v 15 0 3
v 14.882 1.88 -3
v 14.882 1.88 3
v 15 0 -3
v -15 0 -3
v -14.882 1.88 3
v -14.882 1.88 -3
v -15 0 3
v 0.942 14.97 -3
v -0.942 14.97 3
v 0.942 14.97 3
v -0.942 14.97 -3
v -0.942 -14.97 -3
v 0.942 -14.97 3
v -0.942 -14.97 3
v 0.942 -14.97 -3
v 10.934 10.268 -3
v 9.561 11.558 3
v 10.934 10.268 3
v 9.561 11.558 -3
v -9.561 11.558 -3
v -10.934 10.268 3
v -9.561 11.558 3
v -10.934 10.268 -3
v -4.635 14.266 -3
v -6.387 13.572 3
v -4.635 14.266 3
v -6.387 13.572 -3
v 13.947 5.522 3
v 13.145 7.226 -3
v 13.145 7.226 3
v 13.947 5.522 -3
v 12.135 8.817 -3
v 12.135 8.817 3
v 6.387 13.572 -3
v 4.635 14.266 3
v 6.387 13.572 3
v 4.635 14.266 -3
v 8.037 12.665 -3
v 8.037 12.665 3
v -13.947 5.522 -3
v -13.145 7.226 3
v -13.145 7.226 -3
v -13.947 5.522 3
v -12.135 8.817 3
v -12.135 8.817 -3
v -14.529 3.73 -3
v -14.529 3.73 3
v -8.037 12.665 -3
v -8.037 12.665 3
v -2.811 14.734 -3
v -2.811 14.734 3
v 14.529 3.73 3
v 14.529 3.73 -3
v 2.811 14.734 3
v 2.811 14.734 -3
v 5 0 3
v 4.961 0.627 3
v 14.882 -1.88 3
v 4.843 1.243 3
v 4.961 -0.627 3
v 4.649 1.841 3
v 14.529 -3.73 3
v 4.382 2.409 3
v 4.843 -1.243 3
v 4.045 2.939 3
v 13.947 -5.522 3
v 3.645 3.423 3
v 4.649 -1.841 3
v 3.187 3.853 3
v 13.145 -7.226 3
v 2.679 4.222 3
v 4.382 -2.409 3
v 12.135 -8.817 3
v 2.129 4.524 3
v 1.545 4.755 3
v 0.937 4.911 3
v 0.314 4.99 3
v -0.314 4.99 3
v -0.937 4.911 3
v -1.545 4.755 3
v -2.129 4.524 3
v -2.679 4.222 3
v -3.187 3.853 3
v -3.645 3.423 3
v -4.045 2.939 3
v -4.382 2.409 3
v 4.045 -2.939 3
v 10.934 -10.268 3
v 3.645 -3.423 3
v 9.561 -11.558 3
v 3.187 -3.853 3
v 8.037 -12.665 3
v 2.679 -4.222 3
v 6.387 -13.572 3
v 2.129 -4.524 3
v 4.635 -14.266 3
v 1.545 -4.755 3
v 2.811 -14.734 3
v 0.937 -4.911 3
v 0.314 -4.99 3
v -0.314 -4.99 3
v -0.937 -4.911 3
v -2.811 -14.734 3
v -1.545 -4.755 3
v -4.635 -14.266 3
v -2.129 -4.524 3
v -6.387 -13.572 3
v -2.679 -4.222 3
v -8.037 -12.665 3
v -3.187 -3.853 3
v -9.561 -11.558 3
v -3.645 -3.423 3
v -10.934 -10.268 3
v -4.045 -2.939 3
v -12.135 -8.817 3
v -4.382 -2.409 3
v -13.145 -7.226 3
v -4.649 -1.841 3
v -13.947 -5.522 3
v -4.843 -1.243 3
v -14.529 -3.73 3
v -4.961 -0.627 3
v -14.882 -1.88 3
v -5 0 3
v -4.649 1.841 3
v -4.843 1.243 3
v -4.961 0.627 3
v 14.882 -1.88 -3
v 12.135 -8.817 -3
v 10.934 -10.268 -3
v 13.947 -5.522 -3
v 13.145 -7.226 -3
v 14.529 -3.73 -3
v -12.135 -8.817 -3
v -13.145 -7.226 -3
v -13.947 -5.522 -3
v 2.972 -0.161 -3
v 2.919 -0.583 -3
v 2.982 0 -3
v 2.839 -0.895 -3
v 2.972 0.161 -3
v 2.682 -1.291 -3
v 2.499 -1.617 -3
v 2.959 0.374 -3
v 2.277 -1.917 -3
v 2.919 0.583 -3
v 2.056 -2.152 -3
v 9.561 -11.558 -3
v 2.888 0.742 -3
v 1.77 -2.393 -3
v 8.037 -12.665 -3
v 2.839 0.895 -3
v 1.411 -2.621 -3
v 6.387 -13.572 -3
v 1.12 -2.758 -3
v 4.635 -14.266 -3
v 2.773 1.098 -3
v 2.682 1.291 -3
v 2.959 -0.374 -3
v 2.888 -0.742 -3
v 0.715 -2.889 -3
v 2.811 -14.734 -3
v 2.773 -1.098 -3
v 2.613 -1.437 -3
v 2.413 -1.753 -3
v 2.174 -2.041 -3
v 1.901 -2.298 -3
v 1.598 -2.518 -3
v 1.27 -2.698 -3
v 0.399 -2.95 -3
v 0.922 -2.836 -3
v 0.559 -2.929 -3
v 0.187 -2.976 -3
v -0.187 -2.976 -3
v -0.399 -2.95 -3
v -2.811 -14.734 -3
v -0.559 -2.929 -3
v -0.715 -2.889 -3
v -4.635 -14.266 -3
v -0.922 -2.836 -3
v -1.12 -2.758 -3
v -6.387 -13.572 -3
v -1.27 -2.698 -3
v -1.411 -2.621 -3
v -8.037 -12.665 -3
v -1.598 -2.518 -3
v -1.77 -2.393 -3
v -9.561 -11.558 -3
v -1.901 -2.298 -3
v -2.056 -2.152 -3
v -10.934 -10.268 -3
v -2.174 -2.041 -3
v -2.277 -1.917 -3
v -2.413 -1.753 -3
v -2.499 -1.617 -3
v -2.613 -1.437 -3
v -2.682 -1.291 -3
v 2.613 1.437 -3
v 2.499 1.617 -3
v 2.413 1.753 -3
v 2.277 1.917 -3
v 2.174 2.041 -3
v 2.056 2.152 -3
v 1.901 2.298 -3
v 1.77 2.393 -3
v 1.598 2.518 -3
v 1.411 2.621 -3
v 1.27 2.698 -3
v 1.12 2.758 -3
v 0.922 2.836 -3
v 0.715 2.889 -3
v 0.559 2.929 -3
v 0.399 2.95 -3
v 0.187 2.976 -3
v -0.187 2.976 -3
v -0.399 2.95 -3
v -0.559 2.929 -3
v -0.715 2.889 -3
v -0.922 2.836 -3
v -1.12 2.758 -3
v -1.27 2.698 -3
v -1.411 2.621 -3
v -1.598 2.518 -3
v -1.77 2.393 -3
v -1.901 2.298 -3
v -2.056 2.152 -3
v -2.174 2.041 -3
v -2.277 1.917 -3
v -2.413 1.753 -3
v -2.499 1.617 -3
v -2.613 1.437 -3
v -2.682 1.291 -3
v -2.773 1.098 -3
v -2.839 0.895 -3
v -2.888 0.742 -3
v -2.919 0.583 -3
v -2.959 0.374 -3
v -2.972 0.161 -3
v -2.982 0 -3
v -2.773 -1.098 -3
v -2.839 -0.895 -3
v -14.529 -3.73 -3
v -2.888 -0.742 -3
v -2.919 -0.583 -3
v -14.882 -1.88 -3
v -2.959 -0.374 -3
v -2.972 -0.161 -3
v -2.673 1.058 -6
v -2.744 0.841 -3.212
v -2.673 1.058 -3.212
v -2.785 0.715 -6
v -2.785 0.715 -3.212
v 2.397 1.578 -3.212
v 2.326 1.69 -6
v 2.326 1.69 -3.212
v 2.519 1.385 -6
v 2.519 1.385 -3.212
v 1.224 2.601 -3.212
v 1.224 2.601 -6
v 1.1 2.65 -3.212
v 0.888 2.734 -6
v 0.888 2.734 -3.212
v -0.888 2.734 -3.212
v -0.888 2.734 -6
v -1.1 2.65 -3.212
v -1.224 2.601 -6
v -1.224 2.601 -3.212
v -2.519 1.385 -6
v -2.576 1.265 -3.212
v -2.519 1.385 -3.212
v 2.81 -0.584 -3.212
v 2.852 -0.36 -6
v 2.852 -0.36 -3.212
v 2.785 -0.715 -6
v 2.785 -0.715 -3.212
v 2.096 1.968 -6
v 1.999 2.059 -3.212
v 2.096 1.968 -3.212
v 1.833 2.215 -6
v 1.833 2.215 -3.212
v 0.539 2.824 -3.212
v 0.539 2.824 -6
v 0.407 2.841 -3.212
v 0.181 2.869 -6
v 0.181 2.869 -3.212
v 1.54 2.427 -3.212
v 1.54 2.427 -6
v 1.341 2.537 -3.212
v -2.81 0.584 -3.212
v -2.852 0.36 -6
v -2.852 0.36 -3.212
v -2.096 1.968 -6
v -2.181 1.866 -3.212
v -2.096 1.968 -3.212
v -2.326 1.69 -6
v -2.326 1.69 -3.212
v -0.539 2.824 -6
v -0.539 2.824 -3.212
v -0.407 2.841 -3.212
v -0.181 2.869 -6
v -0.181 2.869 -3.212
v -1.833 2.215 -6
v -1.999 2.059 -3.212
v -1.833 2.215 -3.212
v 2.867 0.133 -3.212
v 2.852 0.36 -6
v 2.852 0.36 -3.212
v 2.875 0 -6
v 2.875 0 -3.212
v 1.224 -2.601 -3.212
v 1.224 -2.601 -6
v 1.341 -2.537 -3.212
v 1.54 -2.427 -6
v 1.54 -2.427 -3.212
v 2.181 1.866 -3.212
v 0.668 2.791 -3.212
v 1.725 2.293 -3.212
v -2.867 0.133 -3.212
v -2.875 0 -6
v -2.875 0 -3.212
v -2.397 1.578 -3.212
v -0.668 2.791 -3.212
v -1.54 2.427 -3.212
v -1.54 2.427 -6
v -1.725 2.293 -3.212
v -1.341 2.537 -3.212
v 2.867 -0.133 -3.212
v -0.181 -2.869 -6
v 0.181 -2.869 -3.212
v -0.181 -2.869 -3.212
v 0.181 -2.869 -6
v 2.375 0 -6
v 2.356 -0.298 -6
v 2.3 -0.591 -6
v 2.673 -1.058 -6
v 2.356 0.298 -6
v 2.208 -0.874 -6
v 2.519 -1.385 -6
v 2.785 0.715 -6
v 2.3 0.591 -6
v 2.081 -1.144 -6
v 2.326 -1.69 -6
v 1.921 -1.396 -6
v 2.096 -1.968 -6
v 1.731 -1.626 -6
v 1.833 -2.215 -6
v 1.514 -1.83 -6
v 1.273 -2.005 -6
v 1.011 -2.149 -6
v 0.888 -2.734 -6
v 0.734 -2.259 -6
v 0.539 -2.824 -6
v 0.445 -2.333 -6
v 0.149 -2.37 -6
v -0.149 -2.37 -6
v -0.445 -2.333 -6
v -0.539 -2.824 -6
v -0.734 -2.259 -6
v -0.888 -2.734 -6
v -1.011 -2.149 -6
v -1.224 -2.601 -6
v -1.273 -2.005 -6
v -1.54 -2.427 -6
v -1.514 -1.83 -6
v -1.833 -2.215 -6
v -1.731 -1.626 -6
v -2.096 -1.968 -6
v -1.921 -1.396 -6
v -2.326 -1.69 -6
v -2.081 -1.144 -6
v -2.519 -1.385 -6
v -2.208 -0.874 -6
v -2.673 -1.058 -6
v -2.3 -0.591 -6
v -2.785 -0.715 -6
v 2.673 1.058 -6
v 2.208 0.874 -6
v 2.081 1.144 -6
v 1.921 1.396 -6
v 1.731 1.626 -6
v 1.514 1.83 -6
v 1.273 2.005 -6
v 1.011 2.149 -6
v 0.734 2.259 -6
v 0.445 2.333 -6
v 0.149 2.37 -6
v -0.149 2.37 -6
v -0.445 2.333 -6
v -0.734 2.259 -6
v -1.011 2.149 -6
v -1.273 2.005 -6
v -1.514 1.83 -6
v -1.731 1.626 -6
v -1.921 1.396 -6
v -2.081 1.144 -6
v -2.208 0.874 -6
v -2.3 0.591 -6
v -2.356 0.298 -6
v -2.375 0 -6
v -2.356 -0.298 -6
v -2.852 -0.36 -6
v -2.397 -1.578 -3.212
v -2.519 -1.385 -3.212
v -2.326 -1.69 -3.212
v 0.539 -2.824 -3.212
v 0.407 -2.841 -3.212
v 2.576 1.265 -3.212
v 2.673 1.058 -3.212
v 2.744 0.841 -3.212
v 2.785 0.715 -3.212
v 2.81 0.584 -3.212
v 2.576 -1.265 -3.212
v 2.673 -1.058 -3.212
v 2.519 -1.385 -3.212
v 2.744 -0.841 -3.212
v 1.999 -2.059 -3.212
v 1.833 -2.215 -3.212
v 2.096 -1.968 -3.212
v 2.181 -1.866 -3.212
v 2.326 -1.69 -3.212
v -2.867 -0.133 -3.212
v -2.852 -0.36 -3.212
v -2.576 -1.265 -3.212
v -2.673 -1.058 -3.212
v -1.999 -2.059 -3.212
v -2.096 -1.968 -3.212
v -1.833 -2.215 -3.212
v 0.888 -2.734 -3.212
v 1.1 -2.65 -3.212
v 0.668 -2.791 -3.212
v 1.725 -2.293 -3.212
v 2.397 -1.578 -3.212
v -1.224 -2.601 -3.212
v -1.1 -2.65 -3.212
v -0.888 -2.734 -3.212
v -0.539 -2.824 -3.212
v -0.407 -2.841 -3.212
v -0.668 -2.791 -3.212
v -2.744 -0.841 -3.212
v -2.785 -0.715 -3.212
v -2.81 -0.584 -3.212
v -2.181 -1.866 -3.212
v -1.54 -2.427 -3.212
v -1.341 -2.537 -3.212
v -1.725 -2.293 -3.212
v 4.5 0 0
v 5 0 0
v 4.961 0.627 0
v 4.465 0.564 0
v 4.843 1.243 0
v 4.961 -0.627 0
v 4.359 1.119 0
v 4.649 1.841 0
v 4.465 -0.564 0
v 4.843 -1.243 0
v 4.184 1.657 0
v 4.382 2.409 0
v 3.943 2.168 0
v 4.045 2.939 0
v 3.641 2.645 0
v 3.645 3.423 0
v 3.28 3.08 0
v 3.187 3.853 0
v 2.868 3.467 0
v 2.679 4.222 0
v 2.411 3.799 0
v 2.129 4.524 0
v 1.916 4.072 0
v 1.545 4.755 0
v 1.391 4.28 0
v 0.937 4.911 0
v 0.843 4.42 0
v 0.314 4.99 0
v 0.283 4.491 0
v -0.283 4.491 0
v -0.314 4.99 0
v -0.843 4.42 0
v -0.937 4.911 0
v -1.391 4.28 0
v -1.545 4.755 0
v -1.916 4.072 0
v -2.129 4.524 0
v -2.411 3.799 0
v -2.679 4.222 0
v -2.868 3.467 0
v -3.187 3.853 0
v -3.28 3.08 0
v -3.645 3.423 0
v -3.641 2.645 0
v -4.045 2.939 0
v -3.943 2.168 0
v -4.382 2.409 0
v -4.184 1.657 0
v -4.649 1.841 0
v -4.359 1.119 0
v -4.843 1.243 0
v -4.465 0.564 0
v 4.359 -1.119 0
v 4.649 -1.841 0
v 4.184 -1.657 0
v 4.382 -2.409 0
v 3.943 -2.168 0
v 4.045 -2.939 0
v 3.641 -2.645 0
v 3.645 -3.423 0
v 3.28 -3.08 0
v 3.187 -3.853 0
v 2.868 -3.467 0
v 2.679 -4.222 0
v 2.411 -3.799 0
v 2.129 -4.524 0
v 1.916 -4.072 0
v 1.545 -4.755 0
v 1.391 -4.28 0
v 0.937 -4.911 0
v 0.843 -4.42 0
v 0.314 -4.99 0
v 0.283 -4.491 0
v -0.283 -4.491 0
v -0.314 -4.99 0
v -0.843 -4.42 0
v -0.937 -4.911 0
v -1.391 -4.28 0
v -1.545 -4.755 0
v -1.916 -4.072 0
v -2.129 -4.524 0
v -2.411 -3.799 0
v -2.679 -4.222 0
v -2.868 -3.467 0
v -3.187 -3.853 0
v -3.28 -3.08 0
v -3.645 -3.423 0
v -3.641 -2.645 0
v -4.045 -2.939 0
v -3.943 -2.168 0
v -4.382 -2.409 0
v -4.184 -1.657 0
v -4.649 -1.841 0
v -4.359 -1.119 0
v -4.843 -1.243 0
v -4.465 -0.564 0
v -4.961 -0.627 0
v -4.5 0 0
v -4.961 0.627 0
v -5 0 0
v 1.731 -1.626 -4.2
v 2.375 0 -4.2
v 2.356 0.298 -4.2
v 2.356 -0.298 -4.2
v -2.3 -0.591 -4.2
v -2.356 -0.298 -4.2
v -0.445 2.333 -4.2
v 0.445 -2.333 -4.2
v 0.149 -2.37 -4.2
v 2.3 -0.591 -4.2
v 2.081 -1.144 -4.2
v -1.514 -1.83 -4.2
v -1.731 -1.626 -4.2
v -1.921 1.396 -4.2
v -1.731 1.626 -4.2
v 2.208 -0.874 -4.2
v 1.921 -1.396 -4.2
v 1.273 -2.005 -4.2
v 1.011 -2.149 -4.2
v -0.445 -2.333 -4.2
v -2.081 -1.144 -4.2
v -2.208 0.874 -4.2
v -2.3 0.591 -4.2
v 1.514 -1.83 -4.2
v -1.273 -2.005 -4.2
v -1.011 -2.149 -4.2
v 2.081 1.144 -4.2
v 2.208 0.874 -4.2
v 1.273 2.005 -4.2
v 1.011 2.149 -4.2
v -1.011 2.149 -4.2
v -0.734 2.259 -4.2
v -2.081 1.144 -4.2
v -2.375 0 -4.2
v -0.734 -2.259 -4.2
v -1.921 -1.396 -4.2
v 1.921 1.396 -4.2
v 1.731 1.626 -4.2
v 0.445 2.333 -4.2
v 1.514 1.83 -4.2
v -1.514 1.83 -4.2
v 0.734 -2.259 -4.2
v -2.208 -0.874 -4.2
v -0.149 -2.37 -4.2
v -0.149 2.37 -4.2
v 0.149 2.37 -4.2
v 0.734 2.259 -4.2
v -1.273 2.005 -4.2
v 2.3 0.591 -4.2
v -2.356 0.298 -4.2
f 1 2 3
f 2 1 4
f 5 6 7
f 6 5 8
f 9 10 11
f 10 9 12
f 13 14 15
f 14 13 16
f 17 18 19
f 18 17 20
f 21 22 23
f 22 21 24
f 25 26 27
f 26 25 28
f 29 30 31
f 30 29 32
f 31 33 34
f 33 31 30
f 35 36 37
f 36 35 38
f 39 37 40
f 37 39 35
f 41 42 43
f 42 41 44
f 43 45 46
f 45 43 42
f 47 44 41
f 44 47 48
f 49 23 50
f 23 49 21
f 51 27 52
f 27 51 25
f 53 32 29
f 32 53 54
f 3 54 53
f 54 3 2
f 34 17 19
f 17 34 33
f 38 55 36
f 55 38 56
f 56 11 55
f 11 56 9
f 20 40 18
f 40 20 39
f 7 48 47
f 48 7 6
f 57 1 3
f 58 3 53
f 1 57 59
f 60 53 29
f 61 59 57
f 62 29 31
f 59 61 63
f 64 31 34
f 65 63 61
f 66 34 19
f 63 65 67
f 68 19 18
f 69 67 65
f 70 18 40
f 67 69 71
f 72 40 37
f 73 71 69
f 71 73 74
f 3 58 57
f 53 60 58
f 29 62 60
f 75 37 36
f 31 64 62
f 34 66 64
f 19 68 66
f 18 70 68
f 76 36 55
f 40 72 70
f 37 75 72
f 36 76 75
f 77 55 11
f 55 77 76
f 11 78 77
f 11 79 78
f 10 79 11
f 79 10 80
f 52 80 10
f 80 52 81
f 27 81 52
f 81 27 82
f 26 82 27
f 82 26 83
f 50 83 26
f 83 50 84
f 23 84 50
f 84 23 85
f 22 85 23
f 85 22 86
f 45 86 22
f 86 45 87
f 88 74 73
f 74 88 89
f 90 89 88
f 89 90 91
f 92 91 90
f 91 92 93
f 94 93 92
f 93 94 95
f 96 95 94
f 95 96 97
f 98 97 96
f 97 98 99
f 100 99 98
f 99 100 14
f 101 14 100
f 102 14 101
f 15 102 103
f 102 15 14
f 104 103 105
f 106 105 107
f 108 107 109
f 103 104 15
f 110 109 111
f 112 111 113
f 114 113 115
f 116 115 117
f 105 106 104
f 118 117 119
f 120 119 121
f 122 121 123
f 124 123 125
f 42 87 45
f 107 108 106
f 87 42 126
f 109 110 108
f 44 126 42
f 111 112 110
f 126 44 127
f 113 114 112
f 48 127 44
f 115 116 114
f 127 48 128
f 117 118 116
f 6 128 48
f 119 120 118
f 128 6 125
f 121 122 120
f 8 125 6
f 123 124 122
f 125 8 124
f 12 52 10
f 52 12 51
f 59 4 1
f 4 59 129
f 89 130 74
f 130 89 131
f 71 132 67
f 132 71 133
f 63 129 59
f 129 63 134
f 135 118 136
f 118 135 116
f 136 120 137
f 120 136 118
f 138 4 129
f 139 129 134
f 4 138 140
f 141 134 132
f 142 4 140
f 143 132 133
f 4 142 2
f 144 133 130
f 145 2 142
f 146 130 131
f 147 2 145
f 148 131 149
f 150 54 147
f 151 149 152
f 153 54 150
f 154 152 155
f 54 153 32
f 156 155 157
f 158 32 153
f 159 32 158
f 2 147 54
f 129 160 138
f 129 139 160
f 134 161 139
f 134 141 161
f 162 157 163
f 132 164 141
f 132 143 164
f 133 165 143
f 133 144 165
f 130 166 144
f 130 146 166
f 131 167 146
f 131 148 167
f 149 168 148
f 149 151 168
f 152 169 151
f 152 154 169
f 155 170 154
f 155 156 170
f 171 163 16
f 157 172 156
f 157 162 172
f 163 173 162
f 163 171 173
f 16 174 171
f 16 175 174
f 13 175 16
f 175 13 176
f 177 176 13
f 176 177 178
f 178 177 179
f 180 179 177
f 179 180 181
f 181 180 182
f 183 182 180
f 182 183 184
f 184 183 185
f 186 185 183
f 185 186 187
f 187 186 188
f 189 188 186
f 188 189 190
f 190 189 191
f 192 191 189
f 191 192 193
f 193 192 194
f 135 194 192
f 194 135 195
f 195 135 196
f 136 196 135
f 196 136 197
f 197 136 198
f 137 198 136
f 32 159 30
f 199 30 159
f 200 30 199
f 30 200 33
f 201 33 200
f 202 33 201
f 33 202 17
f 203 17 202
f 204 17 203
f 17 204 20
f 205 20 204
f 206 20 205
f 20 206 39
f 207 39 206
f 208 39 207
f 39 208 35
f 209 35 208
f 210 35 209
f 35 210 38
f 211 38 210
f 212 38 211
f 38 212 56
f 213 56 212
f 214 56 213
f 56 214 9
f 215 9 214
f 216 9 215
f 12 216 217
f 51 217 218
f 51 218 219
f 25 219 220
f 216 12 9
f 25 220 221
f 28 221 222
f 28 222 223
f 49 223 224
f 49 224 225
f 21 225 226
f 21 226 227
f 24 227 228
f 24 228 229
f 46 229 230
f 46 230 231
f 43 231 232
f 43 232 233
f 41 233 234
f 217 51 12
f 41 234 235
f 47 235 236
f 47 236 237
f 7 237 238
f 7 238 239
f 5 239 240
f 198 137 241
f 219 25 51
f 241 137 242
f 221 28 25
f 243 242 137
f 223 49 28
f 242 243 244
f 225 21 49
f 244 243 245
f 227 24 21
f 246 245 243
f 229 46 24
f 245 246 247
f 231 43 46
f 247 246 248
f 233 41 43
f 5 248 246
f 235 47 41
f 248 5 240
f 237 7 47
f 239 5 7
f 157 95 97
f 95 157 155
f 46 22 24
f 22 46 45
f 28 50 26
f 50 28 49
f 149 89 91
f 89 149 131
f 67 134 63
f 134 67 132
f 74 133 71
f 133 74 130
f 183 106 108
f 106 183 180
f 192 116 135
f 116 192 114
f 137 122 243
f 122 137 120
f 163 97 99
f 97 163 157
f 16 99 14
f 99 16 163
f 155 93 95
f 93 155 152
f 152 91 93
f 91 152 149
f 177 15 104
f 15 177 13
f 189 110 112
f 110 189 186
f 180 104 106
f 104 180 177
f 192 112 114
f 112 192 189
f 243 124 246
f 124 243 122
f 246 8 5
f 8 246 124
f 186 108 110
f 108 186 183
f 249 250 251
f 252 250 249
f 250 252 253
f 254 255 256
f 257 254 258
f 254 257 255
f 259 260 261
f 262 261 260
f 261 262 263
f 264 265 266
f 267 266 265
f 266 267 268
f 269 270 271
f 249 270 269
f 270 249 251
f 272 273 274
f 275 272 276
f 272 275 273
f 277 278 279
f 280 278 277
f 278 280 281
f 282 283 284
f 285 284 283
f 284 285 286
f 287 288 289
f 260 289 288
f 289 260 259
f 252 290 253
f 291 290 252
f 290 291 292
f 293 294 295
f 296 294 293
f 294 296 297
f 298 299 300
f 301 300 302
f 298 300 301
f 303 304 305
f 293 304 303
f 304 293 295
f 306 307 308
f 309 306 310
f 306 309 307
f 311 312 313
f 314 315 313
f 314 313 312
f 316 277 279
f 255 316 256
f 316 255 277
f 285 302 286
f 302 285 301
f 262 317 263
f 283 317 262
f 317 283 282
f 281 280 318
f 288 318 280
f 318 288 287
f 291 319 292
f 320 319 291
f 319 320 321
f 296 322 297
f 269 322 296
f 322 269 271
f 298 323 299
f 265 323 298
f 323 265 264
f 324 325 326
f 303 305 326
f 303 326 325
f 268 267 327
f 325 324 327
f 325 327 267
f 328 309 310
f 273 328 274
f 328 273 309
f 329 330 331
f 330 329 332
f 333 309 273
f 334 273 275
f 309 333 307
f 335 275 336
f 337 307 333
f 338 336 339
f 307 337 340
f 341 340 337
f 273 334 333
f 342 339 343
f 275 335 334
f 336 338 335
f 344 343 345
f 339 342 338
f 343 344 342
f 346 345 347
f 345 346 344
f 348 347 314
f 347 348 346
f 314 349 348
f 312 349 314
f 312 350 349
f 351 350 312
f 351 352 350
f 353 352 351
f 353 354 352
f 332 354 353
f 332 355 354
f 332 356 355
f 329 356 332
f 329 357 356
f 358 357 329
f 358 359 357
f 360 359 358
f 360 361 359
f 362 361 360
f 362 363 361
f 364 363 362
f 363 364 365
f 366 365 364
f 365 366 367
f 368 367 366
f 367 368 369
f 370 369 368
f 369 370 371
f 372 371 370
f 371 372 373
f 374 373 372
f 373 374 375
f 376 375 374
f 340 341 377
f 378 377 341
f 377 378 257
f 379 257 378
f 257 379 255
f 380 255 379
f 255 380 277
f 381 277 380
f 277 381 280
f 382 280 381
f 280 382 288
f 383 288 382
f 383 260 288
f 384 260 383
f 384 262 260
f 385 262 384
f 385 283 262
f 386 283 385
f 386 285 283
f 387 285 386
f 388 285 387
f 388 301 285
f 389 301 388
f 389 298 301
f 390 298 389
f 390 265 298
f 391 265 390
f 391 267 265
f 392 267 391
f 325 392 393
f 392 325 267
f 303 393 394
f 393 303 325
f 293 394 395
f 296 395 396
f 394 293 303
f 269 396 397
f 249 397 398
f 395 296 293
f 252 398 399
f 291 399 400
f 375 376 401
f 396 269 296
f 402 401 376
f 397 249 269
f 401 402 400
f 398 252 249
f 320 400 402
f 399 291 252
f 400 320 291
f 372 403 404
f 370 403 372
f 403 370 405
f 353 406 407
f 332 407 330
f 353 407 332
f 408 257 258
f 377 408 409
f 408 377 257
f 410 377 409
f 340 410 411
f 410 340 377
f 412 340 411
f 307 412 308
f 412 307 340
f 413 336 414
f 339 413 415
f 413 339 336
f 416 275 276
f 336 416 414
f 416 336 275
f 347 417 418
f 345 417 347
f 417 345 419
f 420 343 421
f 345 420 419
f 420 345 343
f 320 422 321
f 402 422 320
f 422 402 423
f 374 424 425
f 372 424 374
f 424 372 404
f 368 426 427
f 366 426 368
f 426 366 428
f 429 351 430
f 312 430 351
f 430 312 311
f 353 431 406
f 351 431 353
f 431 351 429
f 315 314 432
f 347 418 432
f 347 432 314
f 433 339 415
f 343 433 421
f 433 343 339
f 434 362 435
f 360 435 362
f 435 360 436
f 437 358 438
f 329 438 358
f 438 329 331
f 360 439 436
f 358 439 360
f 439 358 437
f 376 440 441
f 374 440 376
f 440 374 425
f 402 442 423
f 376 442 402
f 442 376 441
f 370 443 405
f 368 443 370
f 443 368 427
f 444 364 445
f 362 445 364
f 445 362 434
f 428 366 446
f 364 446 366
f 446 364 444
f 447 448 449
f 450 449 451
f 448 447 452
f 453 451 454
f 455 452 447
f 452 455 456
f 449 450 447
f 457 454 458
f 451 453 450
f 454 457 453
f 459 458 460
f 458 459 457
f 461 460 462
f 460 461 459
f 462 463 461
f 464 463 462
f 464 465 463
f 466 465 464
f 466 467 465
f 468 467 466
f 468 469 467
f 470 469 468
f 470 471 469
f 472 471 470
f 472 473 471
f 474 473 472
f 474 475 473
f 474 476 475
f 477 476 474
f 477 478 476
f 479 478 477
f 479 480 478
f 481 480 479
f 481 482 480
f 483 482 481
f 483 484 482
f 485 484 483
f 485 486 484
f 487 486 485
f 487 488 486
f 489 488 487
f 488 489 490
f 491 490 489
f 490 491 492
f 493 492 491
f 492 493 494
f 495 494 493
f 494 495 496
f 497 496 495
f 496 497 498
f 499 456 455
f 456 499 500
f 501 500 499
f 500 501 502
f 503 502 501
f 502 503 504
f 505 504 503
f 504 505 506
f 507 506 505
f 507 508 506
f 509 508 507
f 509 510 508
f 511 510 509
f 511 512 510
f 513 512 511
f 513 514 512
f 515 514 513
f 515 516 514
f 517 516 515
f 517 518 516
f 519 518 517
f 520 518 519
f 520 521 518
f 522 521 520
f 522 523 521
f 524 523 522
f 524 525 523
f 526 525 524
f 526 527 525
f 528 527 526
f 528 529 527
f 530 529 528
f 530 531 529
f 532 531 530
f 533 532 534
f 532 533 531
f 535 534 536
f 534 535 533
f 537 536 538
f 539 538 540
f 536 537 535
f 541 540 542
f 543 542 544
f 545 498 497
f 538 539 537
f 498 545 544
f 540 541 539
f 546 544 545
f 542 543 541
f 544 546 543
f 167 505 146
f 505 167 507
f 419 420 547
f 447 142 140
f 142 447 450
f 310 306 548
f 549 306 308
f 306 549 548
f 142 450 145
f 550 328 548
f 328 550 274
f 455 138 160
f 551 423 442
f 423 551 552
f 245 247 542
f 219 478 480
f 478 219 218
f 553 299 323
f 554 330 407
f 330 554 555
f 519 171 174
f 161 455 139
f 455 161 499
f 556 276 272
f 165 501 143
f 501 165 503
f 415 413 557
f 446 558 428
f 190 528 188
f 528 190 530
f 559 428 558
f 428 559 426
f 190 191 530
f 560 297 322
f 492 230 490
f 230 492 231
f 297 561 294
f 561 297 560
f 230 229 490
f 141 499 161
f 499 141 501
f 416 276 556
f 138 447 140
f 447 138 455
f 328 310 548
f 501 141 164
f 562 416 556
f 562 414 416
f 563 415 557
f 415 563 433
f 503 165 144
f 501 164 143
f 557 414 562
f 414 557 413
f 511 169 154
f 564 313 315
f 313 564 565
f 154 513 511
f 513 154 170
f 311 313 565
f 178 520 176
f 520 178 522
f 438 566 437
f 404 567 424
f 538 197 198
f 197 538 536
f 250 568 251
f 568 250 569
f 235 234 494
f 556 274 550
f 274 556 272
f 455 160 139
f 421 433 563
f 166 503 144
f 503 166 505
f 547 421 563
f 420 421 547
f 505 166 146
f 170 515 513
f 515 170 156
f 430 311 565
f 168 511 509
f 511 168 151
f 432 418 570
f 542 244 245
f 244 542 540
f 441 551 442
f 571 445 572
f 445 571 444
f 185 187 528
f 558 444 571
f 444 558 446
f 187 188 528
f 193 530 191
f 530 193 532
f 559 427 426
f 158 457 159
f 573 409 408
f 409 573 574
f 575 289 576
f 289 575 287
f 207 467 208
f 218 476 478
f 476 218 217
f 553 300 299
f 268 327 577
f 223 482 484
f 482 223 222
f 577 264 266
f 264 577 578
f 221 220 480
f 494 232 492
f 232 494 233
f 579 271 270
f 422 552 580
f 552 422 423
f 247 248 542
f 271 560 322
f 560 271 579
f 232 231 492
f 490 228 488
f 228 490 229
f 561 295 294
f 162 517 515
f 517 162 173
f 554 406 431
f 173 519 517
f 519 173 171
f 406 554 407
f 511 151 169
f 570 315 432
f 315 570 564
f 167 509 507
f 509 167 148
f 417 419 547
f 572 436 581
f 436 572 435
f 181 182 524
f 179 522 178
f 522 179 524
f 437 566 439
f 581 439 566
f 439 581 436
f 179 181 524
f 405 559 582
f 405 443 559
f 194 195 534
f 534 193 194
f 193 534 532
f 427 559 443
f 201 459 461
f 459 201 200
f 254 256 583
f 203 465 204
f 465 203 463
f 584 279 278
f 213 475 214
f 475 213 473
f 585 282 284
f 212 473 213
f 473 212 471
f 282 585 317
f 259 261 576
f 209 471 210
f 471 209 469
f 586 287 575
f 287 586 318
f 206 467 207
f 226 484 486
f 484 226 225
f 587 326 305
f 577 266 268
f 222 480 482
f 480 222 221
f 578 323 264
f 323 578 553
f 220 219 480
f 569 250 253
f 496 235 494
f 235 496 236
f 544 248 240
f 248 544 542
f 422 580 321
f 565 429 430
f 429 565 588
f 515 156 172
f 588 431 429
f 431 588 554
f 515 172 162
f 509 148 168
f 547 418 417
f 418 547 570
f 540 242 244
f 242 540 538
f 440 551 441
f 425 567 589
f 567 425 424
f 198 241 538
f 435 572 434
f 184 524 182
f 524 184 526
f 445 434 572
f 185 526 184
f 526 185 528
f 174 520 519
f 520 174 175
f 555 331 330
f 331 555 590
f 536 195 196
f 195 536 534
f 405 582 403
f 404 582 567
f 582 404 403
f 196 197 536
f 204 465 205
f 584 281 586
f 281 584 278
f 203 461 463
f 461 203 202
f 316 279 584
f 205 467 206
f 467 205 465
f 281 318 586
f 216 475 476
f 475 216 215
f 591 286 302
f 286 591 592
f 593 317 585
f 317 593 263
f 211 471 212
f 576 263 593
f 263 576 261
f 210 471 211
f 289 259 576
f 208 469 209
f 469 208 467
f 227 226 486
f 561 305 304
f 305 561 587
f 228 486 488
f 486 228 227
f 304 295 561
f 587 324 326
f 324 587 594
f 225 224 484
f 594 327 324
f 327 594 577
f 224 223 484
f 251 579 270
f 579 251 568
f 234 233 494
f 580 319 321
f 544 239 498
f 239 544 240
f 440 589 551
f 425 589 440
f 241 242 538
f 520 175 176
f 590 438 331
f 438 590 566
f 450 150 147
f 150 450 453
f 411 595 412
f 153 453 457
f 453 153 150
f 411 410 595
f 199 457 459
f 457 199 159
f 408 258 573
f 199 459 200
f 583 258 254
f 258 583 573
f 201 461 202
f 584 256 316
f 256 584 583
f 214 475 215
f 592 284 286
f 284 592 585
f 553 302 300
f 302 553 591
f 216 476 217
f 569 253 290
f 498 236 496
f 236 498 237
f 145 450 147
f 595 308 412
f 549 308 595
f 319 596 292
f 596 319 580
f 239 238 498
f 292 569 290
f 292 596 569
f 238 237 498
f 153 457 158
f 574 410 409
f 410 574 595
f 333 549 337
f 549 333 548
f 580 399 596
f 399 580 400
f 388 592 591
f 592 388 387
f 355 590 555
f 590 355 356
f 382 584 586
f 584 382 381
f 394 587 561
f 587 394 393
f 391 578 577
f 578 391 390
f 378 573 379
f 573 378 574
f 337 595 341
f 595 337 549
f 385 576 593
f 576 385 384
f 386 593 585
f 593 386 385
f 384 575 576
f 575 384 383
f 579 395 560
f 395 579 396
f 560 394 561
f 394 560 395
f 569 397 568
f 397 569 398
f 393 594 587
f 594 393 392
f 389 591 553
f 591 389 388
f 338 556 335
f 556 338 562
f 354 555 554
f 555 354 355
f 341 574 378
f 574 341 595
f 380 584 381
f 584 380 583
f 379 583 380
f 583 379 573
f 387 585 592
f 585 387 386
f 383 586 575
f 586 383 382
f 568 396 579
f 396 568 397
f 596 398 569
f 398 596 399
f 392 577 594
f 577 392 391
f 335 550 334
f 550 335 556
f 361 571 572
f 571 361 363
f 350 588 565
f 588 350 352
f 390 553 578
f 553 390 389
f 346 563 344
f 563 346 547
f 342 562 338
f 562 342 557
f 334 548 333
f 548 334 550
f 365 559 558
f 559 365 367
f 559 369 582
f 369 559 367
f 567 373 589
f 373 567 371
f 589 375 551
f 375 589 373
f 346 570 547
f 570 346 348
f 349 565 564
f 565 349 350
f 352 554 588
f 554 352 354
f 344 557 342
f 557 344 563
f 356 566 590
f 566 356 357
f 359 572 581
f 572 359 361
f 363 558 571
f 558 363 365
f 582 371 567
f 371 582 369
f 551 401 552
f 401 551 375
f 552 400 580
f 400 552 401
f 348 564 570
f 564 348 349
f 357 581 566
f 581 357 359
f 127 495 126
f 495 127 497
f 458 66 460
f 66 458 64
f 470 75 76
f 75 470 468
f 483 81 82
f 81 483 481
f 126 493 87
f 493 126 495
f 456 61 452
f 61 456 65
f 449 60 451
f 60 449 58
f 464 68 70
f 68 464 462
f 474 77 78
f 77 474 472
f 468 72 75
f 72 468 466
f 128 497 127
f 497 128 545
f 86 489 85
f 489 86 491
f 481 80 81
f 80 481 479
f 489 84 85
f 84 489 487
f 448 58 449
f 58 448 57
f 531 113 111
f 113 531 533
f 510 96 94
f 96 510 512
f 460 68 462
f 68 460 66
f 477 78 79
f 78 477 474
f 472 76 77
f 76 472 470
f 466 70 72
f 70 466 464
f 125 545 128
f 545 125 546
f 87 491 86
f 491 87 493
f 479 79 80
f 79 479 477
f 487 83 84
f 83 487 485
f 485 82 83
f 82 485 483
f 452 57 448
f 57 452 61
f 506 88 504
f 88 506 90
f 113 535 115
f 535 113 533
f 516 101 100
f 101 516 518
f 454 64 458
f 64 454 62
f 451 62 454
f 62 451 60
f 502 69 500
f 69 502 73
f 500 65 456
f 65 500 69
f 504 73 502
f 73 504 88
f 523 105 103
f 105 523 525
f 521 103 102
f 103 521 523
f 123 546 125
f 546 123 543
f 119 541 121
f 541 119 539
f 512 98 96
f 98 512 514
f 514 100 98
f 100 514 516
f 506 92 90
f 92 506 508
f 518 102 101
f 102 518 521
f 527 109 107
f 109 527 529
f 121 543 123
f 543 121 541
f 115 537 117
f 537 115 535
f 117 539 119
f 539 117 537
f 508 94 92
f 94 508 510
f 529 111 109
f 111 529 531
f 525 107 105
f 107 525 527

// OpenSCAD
$fn = 50;

difference() {
	union() {
		translate(v = [0, 0, -3.0]) {
			cylinder(h = 6, r = 15.0);
		}
		#translate(v = [0, 0, -6.0]) {
			cylinder(h = 6, r = 2.875);
		}
	}
	union() {
		translate(v = [0, 0, 0]) {
			rotate(a = [0, 0, 0]) {
				difference() {
					union() {
						translate(v = [0, 0, -6.0]) {
							cylinder(h = 6, r = 2.25);
						}
						translate(v = [0, 0, -4.2]) {
							cylinder(h = 4.2, r1 = 2.375, r2 = 4.5);
						}
						translate(v = [0, 0, -6.0]) {
							cylinder(h = 6, r = 2.375);
						}
						translate(v = [0, 0, -6.0]) {
							cylinder(h = 6, r = 2.25);
						}
					}
					union();
				}
			}
		}
		#cylinder(h = 3, r = 5.0);
	}
}
